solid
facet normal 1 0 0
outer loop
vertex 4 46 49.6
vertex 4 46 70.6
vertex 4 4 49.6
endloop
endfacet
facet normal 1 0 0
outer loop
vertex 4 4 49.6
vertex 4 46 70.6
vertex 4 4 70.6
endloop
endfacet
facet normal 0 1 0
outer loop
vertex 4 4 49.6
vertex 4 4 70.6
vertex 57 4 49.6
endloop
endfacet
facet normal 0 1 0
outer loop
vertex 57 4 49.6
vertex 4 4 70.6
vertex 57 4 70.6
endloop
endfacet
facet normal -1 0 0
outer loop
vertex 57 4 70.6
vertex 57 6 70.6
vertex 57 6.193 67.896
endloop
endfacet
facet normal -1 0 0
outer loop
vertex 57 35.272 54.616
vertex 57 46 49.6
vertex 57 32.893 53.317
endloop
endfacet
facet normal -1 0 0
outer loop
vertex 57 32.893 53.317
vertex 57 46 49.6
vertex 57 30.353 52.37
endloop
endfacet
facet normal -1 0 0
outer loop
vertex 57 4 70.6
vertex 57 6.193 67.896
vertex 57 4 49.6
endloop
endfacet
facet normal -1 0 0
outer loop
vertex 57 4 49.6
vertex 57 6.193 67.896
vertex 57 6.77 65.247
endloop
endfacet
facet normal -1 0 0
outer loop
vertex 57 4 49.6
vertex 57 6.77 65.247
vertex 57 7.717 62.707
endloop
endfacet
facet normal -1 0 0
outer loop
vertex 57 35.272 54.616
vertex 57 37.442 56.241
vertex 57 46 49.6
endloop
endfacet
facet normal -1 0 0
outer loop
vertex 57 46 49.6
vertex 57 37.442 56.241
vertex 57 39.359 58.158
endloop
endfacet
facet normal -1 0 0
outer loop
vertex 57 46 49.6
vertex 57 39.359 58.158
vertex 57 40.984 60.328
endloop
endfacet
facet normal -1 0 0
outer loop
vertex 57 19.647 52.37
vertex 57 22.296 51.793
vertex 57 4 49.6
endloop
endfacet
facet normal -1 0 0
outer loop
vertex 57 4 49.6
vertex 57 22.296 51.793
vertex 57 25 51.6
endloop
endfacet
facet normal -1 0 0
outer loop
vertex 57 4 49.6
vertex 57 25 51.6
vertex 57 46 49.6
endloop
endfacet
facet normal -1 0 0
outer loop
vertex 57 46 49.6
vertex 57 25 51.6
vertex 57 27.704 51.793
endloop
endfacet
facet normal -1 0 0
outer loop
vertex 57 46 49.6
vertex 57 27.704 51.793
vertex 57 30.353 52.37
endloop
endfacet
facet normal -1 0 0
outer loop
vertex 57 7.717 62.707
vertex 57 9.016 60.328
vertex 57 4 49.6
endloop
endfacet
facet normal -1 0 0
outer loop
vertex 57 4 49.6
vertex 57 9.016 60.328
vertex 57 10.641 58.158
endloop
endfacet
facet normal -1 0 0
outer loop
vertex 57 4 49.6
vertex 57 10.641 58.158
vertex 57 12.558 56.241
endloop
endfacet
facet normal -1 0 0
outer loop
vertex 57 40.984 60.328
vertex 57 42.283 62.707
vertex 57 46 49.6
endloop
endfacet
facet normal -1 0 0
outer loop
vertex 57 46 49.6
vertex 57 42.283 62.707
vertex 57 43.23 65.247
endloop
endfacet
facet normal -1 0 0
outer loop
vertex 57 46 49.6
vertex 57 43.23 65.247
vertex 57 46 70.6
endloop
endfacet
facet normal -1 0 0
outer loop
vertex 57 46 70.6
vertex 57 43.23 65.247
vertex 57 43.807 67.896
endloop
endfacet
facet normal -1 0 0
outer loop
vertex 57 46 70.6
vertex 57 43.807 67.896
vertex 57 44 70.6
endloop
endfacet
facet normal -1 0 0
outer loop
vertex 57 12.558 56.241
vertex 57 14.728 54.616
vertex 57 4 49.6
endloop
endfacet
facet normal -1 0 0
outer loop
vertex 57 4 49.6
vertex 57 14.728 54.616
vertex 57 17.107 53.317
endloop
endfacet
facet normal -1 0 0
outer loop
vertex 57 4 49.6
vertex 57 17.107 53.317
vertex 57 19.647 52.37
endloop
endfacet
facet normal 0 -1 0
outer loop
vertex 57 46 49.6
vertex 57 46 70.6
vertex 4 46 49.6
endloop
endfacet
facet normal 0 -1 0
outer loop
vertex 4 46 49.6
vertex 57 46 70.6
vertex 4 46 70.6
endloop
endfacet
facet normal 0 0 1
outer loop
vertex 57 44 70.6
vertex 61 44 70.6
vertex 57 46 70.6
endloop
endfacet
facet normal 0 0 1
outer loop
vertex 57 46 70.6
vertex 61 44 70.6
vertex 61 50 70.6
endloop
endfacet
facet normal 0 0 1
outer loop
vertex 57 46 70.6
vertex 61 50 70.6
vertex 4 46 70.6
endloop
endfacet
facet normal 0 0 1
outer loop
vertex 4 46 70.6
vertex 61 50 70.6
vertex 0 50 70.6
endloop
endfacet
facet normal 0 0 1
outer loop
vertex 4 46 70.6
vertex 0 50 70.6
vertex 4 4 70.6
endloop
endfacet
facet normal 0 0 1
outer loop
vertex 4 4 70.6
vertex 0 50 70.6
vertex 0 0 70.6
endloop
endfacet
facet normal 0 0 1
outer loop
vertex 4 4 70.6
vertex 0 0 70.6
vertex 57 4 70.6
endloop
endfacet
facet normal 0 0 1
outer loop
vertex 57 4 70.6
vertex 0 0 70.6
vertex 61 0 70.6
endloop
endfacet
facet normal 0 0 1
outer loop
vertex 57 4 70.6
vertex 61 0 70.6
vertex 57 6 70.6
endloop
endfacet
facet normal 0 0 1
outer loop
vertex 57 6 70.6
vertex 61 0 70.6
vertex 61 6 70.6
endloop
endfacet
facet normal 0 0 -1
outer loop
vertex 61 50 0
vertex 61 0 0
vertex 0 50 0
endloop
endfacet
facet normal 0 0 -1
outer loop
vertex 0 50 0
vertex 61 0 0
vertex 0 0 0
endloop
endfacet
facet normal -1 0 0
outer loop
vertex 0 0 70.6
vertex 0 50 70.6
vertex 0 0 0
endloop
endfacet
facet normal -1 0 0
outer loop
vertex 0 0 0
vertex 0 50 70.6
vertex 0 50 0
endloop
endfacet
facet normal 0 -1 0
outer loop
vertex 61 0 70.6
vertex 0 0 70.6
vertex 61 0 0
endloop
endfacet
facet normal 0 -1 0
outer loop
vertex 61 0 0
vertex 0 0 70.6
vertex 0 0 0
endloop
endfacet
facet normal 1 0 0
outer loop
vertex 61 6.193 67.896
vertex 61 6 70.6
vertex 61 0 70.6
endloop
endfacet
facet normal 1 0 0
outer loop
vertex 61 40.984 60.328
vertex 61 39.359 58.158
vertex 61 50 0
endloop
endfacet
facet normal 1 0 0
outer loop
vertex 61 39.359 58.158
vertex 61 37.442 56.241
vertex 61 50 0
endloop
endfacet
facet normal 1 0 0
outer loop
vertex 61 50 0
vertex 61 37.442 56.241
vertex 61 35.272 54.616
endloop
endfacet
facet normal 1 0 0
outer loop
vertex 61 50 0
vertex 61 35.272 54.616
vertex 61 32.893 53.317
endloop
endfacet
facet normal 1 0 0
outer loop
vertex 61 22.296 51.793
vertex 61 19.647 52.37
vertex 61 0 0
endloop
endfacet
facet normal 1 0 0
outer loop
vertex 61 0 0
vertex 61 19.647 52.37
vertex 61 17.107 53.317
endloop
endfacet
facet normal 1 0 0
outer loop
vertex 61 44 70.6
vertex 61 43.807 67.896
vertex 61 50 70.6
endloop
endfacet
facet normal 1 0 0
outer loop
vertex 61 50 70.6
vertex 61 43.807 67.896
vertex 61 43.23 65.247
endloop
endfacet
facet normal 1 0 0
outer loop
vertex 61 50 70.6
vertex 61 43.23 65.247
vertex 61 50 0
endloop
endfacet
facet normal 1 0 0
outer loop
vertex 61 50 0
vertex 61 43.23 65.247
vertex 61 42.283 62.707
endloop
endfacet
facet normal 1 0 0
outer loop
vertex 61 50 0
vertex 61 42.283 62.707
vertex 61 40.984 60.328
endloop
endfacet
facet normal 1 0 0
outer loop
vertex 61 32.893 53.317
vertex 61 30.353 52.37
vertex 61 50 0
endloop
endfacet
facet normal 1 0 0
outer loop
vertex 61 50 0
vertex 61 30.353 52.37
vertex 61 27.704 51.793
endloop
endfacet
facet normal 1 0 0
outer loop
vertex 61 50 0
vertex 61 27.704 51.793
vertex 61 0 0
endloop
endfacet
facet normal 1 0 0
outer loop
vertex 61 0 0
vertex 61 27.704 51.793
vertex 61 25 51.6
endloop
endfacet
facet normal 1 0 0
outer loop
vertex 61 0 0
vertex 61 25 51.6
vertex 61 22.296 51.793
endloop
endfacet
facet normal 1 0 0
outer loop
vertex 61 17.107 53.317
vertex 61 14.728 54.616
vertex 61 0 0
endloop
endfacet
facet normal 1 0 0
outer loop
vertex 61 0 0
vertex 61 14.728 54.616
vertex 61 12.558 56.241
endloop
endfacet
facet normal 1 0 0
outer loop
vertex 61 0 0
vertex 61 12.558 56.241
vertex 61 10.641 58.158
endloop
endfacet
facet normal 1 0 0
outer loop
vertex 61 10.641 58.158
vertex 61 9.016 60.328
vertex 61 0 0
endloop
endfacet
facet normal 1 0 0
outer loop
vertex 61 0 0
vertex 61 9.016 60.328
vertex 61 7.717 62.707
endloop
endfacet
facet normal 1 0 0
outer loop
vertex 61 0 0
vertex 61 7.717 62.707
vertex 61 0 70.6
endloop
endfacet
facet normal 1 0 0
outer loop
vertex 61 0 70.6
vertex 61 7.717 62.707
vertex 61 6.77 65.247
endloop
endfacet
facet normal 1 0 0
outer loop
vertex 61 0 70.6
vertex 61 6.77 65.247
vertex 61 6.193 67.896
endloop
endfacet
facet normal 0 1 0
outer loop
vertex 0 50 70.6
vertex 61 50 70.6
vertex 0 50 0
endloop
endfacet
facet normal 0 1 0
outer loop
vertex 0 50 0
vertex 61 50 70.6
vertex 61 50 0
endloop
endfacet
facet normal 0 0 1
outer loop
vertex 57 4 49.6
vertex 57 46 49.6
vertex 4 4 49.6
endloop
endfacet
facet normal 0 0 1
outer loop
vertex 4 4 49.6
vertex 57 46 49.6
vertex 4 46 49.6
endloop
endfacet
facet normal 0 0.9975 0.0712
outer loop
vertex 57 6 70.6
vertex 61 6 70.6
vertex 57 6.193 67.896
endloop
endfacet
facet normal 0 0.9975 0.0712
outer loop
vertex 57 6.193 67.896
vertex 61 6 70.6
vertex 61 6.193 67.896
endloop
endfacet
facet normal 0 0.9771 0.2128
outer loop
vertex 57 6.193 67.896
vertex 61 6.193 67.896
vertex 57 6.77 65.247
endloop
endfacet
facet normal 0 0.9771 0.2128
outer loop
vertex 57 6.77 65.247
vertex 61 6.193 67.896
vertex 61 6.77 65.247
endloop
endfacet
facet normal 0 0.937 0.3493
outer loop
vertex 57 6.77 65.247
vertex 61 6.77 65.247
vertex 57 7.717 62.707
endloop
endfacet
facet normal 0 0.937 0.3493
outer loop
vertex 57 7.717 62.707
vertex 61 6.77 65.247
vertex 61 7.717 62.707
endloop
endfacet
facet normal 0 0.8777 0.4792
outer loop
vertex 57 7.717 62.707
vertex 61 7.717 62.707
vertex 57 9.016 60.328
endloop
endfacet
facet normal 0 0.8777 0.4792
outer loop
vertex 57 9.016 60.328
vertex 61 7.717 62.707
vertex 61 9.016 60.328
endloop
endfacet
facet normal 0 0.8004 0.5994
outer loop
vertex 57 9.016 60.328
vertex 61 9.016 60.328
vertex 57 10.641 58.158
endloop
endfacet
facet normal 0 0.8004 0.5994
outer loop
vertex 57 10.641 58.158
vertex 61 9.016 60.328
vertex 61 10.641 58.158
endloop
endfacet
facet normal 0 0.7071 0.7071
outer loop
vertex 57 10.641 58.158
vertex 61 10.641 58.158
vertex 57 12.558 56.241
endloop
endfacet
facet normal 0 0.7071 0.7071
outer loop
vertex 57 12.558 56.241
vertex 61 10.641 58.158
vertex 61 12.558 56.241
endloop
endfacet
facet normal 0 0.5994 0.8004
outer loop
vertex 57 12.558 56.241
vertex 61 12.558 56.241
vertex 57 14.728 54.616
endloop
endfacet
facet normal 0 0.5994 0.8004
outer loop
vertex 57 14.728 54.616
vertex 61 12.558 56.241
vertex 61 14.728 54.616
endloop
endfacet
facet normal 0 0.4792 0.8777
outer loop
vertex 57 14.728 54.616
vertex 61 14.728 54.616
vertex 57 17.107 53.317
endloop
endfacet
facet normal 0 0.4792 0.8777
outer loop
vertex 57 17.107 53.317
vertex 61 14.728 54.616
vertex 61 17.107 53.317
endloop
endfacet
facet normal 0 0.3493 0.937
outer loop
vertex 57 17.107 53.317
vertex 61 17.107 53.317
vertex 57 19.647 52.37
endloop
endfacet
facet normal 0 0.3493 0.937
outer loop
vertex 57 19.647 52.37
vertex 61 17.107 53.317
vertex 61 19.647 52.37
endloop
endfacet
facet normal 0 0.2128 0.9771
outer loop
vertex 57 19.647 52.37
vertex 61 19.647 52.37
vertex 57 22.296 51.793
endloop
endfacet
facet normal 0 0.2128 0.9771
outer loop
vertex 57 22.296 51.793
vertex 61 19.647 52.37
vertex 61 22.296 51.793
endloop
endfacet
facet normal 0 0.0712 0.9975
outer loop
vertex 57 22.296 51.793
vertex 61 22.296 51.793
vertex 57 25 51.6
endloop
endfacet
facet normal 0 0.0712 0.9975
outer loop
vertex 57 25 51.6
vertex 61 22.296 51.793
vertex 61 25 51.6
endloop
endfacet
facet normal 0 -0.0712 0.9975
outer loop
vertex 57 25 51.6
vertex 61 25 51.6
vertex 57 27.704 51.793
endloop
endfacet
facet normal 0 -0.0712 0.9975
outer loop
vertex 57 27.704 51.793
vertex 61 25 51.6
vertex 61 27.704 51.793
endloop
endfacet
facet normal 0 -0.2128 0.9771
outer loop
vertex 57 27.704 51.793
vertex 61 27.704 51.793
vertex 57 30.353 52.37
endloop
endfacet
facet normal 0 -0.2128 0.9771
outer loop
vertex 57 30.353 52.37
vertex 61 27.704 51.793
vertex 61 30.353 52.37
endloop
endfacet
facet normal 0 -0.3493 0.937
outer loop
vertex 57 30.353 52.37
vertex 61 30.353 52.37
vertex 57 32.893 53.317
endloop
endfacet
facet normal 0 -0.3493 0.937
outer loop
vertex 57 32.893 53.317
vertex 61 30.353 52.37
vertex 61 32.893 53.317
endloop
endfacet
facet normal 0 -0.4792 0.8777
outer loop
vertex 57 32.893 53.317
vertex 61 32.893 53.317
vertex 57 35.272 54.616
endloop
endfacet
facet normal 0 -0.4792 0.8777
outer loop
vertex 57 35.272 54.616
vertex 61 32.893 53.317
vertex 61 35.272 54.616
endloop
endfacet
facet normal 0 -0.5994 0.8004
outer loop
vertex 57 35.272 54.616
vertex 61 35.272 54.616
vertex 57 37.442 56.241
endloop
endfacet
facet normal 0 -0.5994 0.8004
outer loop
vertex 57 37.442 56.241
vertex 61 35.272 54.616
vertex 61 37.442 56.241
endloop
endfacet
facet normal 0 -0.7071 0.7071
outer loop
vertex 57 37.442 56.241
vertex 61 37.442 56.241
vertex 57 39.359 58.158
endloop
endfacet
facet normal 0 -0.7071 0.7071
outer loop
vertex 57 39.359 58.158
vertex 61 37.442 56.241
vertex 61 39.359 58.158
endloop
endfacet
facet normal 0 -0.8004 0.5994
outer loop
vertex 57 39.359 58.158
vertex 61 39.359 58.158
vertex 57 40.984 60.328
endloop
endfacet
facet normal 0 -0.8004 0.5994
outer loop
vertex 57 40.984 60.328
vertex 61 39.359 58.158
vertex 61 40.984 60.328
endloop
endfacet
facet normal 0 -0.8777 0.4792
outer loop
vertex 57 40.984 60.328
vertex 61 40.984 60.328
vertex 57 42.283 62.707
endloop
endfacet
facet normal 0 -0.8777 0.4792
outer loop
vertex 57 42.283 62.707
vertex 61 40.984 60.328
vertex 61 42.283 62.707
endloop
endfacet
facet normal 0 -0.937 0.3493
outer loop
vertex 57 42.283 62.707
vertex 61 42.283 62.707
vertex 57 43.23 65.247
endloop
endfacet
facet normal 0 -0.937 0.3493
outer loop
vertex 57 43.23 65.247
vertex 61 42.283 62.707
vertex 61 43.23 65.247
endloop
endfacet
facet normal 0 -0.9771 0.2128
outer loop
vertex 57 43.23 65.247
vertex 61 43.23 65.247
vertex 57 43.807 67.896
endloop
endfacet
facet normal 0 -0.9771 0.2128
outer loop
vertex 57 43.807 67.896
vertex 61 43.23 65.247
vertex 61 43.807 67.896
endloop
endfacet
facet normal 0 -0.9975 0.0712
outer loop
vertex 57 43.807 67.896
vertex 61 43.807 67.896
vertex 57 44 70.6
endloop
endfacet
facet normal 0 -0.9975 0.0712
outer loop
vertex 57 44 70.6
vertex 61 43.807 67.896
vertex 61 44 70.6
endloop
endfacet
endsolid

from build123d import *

# Parameters (mm, degrees)
SKETCH1_W           = 61
SKETCH1_H           = 50
SKETCH1_W_2         = 53
SKETCH1_H_2         = 42
BOSS_EXTRUDE1_DEPTH = 70.6
SKETCH2_W           = 61
SKETCH2_H           = 50
BOSS_EXTRUDE2_DEPTH = 49.6
SKETCH3_R           = 19
CUT_EXTRUDE1_DEPTH  = 10


with BuildPart() as part:
    # Sketch1 → Boss-Extrude1 (new body)
    with BuildSketch(Plane.XY):
        with Locations((30.5, 25)):
            Rectangle(SKETCH1_W, SKETCH1_H)
        with Locations((30.5, 25)):
            Rectangle(SKETCH1_W_2, SKETCH1_H_2, mode=Mode.SUBTRACT)
    extrude(amount=BOSS_EXTRUDE1_DEPTH)

    # Sketch2 → Boss-Extrude2 (add)
    with BuildSketch(Plane(origin=(0, 0, 0), x_dir=(-1, 0, 0), z_dir=(0, 0, -1))):
        with Locations((-30.5, 25)):
            Rectangle(SKETCH2_W, SKETCH2_H)
    extrude(amount=-BOSS_EXTRUDE2_DEPTH)

    # Sketch3 → Cut-Extrude1 (cut)
    with BuildSketch(Plane(origin=(61, 0, 0), x_dir=(0, 0, -1), z_dir=(1, 0, 0))):
        with Locations((-70.6, 25)):
            Circle(SKETCH3_R)
    extrude(amount=-CUT_EXTRUDE1_DEPTH, mode=Mode.SUBTRACT)


solid = part.part
